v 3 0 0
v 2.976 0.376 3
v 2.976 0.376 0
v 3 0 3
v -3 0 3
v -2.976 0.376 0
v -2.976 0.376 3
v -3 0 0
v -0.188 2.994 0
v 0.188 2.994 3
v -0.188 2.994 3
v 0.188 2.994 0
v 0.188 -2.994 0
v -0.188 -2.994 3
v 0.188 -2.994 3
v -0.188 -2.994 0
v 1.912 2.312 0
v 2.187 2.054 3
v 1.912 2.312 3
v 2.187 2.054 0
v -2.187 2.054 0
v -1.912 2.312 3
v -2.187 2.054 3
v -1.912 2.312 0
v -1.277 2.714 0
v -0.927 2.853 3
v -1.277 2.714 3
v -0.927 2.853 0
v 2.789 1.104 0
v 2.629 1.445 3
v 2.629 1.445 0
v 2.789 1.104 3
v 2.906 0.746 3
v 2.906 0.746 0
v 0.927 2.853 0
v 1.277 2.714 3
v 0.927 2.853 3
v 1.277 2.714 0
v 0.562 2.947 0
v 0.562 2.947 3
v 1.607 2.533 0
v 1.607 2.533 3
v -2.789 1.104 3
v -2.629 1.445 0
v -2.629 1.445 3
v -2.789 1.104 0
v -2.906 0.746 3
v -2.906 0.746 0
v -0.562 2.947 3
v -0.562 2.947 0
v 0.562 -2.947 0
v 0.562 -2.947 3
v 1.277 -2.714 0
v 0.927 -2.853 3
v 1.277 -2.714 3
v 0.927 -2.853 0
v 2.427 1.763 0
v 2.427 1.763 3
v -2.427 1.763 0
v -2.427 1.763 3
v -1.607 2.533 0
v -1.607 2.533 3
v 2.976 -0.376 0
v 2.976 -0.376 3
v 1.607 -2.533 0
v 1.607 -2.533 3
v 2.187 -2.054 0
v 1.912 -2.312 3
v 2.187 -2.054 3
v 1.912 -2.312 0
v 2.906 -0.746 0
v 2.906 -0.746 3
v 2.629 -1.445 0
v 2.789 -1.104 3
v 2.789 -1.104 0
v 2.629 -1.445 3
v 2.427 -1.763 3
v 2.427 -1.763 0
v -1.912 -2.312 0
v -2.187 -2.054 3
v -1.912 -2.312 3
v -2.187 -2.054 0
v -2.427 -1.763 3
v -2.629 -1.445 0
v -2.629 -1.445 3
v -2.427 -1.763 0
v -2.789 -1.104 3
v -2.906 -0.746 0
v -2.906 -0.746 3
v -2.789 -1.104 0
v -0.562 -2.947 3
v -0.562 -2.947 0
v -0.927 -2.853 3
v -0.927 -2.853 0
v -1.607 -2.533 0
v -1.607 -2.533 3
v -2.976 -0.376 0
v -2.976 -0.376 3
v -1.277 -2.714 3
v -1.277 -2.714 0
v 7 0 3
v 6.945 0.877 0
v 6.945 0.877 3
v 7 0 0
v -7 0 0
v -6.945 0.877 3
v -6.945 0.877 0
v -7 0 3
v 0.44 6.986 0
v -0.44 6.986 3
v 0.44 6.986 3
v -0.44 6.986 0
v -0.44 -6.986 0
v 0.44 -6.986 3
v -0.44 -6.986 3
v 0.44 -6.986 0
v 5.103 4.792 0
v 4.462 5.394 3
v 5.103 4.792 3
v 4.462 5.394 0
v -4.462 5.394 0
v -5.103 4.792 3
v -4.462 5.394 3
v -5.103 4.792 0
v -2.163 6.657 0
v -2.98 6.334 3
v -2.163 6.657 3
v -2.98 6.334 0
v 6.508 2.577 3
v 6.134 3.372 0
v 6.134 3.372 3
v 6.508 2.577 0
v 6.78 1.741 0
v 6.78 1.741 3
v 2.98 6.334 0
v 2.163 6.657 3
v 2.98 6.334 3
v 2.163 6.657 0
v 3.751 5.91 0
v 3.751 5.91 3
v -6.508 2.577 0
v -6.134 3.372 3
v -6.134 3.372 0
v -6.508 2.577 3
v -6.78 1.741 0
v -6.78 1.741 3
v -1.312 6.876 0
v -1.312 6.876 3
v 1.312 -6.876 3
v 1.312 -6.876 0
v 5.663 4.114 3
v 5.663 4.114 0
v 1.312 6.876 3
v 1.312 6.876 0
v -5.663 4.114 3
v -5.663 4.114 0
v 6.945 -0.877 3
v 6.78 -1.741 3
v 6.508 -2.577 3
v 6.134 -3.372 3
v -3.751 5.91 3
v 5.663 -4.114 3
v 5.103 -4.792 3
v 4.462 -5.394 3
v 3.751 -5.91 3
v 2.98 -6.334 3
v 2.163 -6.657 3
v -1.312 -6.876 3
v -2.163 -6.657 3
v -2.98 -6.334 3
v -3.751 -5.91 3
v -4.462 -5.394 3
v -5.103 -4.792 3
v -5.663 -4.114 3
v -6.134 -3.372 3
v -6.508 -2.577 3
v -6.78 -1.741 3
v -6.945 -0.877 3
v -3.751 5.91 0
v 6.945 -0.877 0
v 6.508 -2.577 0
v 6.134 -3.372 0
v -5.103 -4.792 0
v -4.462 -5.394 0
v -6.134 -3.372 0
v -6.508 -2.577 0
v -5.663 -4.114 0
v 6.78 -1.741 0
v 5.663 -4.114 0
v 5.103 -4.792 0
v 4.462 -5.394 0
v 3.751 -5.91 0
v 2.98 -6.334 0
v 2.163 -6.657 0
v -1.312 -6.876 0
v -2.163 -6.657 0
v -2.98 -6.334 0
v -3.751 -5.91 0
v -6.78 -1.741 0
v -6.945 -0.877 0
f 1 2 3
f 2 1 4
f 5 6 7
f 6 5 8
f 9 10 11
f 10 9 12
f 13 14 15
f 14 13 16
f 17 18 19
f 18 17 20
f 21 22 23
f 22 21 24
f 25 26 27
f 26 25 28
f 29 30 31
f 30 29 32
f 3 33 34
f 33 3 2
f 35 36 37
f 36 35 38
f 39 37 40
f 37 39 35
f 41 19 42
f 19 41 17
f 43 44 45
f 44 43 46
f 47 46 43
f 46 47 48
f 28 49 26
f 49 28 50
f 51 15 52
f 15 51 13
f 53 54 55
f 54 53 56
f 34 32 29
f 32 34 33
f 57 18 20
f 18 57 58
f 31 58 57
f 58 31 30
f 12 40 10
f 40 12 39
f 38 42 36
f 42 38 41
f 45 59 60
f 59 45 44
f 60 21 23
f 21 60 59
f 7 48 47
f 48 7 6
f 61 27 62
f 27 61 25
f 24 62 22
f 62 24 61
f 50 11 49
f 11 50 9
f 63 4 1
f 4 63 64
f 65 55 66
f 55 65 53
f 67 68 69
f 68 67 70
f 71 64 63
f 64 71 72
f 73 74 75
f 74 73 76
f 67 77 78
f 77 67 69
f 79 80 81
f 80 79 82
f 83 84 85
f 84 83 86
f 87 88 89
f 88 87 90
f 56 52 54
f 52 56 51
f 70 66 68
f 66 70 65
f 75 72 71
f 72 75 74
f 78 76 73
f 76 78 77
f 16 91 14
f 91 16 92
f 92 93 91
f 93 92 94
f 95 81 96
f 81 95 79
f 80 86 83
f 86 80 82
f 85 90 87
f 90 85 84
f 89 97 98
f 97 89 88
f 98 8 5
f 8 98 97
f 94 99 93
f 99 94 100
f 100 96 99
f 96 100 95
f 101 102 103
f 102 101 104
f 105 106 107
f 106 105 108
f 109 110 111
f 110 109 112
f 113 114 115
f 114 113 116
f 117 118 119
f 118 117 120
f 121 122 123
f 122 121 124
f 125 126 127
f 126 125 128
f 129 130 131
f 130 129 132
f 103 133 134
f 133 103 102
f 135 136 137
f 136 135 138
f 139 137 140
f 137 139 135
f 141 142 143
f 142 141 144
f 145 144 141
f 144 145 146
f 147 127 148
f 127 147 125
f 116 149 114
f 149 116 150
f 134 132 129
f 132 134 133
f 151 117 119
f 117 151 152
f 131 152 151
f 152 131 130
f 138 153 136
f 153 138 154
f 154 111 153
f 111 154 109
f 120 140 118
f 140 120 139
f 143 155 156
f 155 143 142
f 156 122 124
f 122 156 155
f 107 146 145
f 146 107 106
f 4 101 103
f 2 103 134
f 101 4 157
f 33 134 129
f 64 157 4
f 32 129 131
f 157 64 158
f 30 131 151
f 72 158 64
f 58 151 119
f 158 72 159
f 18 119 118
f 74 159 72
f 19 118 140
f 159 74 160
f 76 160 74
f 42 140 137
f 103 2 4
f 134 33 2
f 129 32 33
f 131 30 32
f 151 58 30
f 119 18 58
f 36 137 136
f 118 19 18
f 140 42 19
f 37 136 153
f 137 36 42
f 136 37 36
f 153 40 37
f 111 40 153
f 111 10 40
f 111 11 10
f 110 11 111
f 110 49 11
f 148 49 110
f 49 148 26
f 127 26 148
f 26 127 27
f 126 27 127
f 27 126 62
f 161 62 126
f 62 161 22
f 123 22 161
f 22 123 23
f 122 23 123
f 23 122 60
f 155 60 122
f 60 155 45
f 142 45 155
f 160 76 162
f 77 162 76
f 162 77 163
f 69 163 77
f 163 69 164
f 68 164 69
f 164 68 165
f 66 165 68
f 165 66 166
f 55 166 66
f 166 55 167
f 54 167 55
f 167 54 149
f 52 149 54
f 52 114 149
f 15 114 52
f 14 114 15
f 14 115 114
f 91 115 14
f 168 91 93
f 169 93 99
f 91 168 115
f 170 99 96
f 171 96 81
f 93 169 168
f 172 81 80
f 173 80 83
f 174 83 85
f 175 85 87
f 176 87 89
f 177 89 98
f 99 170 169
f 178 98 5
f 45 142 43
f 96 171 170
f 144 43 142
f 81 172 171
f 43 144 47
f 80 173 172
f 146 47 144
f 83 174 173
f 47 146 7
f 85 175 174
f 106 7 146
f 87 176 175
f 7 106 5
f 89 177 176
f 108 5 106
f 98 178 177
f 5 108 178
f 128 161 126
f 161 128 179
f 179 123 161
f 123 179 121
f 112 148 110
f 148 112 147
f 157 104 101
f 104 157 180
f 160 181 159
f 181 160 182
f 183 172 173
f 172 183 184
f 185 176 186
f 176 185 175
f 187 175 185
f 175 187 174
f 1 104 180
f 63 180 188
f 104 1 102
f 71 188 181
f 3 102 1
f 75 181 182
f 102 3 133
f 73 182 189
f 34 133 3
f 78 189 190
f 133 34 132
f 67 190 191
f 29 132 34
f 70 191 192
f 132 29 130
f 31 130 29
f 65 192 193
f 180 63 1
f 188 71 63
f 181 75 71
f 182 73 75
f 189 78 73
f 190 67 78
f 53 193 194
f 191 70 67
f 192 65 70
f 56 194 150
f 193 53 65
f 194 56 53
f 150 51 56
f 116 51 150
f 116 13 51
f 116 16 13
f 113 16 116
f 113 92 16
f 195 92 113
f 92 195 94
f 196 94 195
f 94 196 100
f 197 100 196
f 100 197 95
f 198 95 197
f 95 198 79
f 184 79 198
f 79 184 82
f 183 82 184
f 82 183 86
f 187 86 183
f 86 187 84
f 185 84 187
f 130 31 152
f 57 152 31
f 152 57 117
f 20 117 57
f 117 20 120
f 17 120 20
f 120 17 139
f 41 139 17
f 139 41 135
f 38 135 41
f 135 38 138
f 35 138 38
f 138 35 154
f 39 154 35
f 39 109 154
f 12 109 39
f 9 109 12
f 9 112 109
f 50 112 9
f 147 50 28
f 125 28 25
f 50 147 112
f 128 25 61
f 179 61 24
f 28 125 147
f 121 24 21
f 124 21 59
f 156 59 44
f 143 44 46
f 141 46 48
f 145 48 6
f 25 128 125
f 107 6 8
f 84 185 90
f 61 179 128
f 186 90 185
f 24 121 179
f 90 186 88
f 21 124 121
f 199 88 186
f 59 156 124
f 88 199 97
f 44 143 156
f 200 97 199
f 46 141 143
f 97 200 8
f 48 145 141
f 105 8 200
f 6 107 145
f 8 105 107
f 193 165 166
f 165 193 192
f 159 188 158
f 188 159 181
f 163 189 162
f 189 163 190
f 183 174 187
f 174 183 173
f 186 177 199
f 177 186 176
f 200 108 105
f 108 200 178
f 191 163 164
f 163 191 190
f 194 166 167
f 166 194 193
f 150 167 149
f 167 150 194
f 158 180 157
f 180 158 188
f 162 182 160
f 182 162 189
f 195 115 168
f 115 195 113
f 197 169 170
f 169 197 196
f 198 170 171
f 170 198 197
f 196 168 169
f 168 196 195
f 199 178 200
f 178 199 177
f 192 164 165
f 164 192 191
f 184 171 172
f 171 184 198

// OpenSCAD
$fn = 50;


difference() {
	union() {
		translate(v = [0, 0, 0]) {
			rotate(a = [0, 0, 0]) {
				cylinder(h = 3, r = 7.0000000000);
			}
		}
	}
	union() {
		translate(v = [0.0000000000, 0.0000000000, 0]) {
			rotate(a = [0, 0, 0]) {
				translate(v = [0, 0, -50]) {
					rotate(a = [0, 0, 0]) {
						cylinder(h = 100, r = 3.0000000000);
					}
				}
			}
		}
		translate(v = [0.0000000000, 0.0000000000, 0]) {
			rotate(a = [0, 0, 0]) {
				translate(v = [0, 0, -50]) {
					rotate(a = [0, 0, 0]) {
						cylinder(h = 100, r = 1.5000000000);
					}
				}
			}
		}
	}
}
